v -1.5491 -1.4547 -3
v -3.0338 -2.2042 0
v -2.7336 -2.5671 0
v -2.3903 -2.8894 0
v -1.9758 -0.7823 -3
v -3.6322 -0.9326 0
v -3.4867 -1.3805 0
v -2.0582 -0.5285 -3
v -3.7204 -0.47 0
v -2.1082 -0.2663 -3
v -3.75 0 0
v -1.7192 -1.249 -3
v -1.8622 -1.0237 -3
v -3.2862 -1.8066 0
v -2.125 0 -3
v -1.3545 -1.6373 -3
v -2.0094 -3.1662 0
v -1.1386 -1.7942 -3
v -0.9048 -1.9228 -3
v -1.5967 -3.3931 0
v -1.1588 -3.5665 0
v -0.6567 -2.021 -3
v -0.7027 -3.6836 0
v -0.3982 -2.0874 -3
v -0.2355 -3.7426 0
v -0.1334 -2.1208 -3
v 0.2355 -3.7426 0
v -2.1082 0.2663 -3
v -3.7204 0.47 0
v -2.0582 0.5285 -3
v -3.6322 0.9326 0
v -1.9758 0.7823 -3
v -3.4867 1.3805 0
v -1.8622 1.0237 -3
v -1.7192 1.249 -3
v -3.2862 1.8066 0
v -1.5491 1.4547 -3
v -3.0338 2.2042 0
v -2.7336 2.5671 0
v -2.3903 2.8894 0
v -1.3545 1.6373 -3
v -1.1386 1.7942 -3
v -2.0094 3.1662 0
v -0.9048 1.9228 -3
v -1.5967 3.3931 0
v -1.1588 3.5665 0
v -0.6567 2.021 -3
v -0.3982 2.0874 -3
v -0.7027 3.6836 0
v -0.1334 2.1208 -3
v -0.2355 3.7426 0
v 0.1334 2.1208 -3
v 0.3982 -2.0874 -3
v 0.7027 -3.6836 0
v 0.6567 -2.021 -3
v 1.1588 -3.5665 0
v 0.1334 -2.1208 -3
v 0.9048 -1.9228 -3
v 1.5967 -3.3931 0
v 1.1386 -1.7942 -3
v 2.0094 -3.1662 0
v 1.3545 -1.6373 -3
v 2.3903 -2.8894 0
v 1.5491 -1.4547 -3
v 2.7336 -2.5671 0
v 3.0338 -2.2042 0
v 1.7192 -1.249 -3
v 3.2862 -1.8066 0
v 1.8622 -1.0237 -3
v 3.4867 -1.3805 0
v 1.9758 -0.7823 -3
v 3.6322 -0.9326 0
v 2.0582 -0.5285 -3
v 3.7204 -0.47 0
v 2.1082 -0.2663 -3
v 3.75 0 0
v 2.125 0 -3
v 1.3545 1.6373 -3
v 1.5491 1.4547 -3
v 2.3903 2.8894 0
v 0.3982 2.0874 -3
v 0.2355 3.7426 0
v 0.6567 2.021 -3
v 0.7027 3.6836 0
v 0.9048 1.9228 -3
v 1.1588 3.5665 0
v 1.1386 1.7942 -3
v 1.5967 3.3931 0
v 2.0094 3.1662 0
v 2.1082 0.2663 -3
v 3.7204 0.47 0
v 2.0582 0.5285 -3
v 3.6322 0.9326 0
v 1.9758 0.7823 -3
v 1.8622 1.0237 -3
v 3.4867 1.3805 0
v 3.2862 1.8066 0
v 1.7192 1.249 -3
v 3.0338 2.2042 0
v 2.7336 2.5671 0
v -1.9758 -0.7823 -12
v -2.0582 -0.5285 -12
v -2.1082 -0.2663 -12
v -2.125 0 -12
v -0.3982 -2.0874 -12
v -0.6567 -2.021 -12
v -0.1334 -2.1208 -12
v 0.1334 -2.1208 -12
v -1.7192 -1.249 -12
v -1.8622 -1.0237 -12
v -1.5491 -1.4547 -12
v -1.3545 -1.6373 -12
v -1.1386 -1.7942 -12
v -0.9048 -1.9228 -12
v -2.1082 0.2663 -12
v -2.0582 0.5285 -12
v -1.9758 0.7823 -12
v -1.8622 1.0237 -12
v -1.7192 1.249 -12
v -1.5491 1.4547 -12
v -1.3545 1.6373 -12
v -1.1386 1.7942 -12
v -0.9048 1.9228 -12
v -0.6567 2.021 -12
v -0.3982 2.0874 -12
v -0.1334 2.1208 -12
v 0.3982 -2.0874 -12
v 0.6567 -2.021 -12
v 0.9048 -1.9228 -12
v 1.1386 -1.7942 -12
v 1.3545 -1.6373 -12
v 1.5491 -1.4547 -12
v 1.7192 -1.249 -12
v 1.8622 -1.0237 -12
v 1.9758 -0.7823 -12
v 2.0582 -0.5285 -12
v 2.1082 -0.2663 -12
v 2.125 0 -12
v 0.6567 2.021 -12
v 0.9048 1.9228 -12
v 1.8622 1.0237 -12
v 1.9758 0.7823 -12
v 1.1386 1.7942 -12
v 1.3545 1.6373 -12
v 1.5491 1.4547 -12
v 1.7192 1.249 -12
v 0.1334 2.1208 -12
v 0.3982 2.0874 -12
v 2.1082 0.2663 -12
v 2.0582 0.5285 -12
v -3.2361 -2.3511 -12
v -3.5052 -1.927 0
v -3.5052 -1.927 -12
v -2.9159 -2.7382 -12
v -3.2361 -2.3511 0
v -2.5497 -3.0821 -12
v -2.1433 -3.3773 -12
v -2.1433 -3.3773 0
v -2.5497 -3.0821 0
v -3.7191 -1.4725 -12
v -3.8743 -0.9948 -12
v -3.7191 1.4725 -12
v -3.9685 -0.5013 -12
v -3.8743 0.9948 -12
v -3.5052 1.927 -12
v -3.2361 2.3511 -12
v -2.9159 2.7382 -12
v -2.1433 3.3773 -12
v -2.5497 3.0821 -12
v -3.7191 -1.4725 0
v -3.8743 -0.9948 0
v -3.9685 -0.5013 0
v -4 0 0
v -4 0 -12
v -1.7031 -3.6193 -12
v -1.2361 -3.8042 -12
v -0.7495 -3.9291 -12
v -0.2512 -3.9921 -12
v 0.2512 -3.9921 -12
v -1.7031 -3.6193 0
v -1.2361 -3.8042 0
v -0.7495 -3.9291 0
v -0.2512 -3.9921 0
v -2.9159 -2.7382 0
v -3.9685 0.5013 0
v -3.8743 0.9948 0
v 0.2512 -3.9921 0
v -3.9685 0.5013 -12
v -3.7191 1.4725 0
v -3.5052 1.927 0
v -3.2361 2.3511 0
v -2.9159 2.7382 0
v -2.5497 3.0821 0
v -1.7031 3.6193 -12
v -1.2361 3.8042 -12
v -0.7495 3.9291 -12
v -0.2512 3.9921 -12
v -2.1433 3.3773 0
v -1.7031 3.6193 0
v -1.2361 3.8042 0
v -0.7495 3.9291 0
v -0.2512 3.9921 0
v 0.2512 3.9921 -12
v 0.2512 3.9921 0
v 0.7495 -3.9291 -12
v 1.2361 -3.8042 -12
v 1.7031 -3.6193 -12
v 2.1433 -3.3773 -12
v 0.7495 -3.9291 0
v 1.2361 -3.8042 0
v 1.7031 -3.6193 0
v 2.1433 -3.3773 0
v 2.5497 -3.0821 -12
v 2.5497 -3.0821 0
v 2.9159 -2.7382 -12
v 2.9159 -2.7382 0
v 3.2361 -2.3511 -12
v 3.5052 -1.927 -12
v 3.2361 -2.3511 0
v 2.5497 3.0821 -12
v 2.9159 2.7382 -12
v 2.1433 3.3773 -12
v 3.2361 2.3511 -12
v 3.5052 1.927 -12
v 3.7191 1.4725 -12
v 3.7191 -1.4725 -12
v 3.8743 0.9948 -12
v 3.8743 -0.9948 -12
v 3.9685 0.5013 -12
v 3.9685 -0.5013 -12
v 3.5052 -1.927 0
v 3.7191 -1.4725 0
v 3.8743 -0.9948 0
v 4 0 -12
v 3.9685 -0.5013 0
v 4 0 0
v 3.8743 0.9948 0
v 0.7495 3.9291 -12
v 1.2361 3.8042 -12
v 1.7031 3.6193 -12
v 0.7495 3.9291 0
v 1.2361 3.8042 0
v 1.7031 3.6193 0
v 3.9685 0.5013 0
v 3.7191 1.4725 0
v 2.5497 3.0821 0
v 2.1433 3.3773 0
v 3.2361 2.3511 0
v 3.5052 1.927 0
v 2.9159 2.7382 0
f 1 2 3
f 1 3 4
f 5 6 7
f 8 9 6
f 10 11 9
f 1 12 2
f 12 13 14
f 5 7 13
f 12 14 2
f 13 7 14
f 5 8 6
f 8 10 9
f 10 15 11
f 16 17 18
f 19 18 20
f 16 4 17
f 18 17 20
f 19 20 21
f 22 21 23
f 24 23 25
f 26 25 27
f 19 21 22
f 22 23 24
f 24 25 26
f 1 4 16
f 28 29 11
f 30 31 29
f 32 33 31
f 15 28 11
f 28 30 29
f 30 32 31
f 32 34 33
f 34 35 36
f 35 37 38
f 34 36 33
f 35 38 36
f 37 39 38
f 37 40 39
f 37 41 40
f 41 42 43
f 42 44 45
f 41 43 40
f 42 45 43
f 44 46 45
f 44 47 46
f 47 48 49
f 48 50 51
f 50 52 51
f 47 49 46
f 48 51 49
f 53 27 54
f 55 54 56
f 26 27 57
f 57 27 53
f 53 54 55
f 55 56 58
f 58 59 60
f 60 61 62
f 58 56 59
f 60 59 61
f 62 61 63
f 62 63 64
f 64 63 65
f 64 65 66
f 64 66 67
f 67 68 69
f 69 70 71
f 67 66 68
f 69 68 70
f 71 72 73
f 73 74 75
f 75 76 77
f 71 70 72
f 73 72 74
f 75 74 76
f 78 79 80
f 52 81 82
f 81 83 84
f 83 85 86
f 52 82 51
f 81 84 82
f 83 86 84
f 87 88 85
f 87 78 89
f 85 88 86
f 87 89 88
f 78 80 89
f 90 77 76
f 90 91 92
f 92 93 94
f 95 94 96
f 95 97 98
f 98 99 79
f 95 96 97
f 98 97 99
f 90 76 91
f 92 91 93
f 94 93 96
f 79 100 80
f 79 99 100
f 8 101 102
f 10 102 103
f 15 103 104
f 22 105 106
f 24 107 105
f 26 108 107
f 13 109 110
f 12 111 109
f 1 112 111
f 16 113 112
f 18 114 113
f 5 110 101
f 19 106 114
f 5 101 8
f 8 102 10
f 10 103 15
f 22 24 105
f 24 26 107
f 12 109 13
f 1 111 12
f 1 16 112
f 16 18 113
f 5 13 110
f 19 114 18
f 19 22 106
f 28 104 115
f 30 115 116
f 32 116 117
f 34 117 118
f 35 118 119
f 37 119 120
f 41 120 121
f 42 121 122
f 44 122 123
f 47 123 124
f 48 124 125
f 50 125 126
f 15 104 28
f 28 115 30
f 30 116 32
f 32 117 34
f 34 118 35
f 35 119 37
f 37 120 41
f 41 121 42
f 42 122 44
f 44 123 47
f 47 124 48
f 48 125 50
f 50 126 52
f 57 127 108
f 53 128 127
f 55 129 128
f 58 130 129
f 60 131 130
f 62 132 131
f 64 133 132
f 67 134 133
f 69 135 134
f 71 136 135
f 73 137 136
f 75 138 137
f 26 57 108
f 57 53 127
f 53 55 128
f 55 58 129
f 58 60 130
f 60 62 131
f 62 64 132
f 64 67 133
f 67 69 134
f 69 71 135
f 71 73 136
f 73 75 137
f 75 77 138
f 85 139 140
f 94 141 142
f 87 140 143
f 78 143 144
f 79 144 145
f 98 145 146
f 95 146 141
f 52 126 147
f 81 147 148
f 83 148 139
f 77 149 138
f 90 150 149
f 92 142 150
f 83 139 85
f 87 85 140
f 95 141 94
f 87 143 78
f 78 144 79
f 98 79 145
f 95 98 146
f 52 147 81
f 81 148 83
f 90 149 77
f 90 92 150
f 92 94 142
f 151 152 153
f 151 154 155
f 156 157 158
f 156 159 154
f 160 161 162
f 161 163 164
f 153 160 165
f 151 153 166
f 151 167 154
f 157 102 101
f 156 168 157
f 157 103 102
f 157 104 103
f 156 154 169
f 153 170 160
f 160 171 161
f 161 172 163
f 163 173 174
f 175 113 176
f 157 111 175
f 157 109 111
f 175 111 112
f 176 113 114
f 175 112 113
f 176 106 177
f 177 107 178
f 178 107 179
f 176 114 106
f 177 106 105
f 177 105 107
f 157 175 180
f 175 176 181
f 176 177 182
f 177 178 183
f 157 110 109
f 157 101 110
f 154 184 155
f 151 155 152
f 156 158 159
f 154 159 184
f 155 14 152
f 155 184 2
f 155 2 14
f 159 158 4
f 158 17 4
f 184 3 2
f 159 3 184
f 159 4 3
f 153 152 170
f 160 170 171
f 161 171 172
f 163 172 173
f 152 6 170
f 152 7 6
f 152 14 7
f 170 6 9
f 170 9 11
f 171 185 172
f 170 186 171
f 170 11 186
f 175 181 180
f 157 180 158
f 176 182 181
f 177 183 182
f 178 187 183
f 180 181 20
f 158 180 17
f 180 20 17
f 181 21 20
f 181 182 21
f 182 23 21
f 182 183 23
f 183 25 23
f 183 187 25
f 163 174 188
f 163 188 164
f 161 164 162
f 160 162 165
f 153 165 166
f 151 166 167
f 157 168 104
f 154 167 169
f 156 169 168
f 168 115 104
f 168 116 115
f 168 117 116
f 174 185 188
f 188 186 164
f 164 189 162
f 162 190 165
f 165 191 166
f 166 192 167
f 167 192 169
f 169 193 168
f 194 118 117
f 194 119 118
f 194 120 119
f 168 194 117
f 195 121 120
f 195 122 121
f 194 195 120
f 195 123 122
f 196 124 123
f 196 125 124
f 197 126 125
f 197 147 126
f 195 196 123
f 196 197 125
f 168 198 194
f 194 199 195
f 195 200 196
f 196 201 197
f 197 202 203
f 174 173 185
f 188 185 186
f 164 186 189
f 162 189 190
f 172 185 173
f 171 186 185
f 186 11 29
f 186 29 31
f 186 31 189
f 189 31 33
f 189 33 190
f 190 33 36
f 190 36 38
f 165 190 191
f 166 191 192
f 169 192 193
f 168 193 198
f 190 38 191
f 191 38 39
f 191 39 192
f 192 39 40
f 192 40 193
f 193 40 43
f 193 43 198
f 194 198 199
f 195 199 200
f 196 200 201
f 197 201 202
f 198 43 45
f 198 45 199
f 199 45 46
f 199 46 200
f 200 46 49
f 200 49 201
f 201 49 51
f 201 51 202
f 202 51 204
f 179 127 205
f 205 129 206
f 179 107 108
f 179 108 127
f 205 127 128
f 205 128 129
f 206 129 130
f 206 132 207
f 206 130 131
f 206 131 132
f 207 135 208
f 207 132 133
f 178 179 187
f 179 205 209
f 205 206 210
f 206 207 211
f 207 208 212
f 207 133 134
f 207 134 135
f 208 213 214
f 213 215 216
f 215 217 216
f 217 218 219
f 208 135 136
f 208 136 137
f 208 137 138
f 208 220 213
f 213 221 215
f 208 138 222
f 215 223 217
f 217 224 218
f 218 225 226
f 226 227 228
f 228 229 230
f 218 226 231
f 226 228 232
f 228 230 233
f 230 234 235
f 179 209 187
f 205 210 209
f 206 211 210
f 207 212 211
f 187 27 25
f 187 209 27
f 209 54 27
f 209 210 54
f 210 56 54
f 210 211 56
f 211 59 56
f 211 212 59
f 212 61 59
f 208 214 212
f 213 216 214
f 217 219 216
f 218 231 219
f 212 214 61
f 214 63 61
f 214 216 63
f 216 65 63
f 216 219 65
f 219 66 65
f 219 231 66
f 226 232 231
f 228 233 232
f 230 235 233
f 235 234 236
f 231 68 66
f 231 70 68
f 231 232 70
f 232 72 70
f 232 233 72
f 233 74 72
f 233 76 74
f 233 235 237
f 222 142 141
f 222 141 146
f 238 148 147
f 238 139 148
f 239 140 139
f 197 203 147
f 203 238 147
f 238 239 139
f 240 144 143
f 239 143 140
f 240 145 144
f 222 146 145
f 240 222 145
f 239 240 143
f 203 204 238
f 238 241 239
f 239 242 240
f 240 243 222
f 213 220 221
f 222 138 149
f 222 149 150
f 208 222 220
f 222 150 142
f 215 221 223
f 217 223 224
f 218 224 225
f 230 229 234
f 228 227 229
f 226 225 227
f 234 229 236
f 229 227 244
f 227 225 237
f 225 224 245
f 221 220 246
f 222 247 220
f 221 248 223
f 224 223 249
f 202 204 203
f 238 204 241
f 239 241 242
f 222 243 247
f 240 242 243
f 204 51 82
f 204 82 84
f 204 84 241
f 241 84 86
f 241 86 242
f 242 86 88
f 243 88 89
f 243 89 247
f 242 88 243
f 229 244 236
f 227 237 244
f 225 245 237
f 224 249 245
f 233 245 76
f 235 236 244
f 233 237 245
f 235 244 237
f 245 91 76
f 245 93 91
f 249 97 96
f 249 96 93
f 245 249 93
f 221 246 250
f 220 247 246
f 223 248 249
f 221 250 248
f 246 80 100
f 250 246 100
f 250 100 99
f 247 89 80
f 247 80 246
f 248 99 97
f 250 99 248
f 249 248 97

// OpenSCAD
$fn = 50;

difference() {
	union() {
		translate(v = [0, 0, -12.0]) {
			cylinder(h = 15, r = 4.0);
		}
	}
	union() {
		translate(v = [0, 0, 0]) {
			rotate(a = [0, 0, 0]) {
				difference() {
					union() {
						translate(v = [0, 0, -15.0]) {
							cylinder(h = 15, r = 2.0);
						}
						translate(v = [0, 0, -3]) {
							cylinder(h = 3, r1 = 2.125, r2 = 3.75);
						}
						translate(v = [0, 0, -15.0]) {
							cylinder(h = 15, r = 2.125);
						}
						translate(v = [0, 0, -15.0]) {
							cylinder(h = 15, r = 2.0);
						}
					}
					union();
				}
			}
		}
		#cylinder(h = 3, r = 5.0);
	}
}
